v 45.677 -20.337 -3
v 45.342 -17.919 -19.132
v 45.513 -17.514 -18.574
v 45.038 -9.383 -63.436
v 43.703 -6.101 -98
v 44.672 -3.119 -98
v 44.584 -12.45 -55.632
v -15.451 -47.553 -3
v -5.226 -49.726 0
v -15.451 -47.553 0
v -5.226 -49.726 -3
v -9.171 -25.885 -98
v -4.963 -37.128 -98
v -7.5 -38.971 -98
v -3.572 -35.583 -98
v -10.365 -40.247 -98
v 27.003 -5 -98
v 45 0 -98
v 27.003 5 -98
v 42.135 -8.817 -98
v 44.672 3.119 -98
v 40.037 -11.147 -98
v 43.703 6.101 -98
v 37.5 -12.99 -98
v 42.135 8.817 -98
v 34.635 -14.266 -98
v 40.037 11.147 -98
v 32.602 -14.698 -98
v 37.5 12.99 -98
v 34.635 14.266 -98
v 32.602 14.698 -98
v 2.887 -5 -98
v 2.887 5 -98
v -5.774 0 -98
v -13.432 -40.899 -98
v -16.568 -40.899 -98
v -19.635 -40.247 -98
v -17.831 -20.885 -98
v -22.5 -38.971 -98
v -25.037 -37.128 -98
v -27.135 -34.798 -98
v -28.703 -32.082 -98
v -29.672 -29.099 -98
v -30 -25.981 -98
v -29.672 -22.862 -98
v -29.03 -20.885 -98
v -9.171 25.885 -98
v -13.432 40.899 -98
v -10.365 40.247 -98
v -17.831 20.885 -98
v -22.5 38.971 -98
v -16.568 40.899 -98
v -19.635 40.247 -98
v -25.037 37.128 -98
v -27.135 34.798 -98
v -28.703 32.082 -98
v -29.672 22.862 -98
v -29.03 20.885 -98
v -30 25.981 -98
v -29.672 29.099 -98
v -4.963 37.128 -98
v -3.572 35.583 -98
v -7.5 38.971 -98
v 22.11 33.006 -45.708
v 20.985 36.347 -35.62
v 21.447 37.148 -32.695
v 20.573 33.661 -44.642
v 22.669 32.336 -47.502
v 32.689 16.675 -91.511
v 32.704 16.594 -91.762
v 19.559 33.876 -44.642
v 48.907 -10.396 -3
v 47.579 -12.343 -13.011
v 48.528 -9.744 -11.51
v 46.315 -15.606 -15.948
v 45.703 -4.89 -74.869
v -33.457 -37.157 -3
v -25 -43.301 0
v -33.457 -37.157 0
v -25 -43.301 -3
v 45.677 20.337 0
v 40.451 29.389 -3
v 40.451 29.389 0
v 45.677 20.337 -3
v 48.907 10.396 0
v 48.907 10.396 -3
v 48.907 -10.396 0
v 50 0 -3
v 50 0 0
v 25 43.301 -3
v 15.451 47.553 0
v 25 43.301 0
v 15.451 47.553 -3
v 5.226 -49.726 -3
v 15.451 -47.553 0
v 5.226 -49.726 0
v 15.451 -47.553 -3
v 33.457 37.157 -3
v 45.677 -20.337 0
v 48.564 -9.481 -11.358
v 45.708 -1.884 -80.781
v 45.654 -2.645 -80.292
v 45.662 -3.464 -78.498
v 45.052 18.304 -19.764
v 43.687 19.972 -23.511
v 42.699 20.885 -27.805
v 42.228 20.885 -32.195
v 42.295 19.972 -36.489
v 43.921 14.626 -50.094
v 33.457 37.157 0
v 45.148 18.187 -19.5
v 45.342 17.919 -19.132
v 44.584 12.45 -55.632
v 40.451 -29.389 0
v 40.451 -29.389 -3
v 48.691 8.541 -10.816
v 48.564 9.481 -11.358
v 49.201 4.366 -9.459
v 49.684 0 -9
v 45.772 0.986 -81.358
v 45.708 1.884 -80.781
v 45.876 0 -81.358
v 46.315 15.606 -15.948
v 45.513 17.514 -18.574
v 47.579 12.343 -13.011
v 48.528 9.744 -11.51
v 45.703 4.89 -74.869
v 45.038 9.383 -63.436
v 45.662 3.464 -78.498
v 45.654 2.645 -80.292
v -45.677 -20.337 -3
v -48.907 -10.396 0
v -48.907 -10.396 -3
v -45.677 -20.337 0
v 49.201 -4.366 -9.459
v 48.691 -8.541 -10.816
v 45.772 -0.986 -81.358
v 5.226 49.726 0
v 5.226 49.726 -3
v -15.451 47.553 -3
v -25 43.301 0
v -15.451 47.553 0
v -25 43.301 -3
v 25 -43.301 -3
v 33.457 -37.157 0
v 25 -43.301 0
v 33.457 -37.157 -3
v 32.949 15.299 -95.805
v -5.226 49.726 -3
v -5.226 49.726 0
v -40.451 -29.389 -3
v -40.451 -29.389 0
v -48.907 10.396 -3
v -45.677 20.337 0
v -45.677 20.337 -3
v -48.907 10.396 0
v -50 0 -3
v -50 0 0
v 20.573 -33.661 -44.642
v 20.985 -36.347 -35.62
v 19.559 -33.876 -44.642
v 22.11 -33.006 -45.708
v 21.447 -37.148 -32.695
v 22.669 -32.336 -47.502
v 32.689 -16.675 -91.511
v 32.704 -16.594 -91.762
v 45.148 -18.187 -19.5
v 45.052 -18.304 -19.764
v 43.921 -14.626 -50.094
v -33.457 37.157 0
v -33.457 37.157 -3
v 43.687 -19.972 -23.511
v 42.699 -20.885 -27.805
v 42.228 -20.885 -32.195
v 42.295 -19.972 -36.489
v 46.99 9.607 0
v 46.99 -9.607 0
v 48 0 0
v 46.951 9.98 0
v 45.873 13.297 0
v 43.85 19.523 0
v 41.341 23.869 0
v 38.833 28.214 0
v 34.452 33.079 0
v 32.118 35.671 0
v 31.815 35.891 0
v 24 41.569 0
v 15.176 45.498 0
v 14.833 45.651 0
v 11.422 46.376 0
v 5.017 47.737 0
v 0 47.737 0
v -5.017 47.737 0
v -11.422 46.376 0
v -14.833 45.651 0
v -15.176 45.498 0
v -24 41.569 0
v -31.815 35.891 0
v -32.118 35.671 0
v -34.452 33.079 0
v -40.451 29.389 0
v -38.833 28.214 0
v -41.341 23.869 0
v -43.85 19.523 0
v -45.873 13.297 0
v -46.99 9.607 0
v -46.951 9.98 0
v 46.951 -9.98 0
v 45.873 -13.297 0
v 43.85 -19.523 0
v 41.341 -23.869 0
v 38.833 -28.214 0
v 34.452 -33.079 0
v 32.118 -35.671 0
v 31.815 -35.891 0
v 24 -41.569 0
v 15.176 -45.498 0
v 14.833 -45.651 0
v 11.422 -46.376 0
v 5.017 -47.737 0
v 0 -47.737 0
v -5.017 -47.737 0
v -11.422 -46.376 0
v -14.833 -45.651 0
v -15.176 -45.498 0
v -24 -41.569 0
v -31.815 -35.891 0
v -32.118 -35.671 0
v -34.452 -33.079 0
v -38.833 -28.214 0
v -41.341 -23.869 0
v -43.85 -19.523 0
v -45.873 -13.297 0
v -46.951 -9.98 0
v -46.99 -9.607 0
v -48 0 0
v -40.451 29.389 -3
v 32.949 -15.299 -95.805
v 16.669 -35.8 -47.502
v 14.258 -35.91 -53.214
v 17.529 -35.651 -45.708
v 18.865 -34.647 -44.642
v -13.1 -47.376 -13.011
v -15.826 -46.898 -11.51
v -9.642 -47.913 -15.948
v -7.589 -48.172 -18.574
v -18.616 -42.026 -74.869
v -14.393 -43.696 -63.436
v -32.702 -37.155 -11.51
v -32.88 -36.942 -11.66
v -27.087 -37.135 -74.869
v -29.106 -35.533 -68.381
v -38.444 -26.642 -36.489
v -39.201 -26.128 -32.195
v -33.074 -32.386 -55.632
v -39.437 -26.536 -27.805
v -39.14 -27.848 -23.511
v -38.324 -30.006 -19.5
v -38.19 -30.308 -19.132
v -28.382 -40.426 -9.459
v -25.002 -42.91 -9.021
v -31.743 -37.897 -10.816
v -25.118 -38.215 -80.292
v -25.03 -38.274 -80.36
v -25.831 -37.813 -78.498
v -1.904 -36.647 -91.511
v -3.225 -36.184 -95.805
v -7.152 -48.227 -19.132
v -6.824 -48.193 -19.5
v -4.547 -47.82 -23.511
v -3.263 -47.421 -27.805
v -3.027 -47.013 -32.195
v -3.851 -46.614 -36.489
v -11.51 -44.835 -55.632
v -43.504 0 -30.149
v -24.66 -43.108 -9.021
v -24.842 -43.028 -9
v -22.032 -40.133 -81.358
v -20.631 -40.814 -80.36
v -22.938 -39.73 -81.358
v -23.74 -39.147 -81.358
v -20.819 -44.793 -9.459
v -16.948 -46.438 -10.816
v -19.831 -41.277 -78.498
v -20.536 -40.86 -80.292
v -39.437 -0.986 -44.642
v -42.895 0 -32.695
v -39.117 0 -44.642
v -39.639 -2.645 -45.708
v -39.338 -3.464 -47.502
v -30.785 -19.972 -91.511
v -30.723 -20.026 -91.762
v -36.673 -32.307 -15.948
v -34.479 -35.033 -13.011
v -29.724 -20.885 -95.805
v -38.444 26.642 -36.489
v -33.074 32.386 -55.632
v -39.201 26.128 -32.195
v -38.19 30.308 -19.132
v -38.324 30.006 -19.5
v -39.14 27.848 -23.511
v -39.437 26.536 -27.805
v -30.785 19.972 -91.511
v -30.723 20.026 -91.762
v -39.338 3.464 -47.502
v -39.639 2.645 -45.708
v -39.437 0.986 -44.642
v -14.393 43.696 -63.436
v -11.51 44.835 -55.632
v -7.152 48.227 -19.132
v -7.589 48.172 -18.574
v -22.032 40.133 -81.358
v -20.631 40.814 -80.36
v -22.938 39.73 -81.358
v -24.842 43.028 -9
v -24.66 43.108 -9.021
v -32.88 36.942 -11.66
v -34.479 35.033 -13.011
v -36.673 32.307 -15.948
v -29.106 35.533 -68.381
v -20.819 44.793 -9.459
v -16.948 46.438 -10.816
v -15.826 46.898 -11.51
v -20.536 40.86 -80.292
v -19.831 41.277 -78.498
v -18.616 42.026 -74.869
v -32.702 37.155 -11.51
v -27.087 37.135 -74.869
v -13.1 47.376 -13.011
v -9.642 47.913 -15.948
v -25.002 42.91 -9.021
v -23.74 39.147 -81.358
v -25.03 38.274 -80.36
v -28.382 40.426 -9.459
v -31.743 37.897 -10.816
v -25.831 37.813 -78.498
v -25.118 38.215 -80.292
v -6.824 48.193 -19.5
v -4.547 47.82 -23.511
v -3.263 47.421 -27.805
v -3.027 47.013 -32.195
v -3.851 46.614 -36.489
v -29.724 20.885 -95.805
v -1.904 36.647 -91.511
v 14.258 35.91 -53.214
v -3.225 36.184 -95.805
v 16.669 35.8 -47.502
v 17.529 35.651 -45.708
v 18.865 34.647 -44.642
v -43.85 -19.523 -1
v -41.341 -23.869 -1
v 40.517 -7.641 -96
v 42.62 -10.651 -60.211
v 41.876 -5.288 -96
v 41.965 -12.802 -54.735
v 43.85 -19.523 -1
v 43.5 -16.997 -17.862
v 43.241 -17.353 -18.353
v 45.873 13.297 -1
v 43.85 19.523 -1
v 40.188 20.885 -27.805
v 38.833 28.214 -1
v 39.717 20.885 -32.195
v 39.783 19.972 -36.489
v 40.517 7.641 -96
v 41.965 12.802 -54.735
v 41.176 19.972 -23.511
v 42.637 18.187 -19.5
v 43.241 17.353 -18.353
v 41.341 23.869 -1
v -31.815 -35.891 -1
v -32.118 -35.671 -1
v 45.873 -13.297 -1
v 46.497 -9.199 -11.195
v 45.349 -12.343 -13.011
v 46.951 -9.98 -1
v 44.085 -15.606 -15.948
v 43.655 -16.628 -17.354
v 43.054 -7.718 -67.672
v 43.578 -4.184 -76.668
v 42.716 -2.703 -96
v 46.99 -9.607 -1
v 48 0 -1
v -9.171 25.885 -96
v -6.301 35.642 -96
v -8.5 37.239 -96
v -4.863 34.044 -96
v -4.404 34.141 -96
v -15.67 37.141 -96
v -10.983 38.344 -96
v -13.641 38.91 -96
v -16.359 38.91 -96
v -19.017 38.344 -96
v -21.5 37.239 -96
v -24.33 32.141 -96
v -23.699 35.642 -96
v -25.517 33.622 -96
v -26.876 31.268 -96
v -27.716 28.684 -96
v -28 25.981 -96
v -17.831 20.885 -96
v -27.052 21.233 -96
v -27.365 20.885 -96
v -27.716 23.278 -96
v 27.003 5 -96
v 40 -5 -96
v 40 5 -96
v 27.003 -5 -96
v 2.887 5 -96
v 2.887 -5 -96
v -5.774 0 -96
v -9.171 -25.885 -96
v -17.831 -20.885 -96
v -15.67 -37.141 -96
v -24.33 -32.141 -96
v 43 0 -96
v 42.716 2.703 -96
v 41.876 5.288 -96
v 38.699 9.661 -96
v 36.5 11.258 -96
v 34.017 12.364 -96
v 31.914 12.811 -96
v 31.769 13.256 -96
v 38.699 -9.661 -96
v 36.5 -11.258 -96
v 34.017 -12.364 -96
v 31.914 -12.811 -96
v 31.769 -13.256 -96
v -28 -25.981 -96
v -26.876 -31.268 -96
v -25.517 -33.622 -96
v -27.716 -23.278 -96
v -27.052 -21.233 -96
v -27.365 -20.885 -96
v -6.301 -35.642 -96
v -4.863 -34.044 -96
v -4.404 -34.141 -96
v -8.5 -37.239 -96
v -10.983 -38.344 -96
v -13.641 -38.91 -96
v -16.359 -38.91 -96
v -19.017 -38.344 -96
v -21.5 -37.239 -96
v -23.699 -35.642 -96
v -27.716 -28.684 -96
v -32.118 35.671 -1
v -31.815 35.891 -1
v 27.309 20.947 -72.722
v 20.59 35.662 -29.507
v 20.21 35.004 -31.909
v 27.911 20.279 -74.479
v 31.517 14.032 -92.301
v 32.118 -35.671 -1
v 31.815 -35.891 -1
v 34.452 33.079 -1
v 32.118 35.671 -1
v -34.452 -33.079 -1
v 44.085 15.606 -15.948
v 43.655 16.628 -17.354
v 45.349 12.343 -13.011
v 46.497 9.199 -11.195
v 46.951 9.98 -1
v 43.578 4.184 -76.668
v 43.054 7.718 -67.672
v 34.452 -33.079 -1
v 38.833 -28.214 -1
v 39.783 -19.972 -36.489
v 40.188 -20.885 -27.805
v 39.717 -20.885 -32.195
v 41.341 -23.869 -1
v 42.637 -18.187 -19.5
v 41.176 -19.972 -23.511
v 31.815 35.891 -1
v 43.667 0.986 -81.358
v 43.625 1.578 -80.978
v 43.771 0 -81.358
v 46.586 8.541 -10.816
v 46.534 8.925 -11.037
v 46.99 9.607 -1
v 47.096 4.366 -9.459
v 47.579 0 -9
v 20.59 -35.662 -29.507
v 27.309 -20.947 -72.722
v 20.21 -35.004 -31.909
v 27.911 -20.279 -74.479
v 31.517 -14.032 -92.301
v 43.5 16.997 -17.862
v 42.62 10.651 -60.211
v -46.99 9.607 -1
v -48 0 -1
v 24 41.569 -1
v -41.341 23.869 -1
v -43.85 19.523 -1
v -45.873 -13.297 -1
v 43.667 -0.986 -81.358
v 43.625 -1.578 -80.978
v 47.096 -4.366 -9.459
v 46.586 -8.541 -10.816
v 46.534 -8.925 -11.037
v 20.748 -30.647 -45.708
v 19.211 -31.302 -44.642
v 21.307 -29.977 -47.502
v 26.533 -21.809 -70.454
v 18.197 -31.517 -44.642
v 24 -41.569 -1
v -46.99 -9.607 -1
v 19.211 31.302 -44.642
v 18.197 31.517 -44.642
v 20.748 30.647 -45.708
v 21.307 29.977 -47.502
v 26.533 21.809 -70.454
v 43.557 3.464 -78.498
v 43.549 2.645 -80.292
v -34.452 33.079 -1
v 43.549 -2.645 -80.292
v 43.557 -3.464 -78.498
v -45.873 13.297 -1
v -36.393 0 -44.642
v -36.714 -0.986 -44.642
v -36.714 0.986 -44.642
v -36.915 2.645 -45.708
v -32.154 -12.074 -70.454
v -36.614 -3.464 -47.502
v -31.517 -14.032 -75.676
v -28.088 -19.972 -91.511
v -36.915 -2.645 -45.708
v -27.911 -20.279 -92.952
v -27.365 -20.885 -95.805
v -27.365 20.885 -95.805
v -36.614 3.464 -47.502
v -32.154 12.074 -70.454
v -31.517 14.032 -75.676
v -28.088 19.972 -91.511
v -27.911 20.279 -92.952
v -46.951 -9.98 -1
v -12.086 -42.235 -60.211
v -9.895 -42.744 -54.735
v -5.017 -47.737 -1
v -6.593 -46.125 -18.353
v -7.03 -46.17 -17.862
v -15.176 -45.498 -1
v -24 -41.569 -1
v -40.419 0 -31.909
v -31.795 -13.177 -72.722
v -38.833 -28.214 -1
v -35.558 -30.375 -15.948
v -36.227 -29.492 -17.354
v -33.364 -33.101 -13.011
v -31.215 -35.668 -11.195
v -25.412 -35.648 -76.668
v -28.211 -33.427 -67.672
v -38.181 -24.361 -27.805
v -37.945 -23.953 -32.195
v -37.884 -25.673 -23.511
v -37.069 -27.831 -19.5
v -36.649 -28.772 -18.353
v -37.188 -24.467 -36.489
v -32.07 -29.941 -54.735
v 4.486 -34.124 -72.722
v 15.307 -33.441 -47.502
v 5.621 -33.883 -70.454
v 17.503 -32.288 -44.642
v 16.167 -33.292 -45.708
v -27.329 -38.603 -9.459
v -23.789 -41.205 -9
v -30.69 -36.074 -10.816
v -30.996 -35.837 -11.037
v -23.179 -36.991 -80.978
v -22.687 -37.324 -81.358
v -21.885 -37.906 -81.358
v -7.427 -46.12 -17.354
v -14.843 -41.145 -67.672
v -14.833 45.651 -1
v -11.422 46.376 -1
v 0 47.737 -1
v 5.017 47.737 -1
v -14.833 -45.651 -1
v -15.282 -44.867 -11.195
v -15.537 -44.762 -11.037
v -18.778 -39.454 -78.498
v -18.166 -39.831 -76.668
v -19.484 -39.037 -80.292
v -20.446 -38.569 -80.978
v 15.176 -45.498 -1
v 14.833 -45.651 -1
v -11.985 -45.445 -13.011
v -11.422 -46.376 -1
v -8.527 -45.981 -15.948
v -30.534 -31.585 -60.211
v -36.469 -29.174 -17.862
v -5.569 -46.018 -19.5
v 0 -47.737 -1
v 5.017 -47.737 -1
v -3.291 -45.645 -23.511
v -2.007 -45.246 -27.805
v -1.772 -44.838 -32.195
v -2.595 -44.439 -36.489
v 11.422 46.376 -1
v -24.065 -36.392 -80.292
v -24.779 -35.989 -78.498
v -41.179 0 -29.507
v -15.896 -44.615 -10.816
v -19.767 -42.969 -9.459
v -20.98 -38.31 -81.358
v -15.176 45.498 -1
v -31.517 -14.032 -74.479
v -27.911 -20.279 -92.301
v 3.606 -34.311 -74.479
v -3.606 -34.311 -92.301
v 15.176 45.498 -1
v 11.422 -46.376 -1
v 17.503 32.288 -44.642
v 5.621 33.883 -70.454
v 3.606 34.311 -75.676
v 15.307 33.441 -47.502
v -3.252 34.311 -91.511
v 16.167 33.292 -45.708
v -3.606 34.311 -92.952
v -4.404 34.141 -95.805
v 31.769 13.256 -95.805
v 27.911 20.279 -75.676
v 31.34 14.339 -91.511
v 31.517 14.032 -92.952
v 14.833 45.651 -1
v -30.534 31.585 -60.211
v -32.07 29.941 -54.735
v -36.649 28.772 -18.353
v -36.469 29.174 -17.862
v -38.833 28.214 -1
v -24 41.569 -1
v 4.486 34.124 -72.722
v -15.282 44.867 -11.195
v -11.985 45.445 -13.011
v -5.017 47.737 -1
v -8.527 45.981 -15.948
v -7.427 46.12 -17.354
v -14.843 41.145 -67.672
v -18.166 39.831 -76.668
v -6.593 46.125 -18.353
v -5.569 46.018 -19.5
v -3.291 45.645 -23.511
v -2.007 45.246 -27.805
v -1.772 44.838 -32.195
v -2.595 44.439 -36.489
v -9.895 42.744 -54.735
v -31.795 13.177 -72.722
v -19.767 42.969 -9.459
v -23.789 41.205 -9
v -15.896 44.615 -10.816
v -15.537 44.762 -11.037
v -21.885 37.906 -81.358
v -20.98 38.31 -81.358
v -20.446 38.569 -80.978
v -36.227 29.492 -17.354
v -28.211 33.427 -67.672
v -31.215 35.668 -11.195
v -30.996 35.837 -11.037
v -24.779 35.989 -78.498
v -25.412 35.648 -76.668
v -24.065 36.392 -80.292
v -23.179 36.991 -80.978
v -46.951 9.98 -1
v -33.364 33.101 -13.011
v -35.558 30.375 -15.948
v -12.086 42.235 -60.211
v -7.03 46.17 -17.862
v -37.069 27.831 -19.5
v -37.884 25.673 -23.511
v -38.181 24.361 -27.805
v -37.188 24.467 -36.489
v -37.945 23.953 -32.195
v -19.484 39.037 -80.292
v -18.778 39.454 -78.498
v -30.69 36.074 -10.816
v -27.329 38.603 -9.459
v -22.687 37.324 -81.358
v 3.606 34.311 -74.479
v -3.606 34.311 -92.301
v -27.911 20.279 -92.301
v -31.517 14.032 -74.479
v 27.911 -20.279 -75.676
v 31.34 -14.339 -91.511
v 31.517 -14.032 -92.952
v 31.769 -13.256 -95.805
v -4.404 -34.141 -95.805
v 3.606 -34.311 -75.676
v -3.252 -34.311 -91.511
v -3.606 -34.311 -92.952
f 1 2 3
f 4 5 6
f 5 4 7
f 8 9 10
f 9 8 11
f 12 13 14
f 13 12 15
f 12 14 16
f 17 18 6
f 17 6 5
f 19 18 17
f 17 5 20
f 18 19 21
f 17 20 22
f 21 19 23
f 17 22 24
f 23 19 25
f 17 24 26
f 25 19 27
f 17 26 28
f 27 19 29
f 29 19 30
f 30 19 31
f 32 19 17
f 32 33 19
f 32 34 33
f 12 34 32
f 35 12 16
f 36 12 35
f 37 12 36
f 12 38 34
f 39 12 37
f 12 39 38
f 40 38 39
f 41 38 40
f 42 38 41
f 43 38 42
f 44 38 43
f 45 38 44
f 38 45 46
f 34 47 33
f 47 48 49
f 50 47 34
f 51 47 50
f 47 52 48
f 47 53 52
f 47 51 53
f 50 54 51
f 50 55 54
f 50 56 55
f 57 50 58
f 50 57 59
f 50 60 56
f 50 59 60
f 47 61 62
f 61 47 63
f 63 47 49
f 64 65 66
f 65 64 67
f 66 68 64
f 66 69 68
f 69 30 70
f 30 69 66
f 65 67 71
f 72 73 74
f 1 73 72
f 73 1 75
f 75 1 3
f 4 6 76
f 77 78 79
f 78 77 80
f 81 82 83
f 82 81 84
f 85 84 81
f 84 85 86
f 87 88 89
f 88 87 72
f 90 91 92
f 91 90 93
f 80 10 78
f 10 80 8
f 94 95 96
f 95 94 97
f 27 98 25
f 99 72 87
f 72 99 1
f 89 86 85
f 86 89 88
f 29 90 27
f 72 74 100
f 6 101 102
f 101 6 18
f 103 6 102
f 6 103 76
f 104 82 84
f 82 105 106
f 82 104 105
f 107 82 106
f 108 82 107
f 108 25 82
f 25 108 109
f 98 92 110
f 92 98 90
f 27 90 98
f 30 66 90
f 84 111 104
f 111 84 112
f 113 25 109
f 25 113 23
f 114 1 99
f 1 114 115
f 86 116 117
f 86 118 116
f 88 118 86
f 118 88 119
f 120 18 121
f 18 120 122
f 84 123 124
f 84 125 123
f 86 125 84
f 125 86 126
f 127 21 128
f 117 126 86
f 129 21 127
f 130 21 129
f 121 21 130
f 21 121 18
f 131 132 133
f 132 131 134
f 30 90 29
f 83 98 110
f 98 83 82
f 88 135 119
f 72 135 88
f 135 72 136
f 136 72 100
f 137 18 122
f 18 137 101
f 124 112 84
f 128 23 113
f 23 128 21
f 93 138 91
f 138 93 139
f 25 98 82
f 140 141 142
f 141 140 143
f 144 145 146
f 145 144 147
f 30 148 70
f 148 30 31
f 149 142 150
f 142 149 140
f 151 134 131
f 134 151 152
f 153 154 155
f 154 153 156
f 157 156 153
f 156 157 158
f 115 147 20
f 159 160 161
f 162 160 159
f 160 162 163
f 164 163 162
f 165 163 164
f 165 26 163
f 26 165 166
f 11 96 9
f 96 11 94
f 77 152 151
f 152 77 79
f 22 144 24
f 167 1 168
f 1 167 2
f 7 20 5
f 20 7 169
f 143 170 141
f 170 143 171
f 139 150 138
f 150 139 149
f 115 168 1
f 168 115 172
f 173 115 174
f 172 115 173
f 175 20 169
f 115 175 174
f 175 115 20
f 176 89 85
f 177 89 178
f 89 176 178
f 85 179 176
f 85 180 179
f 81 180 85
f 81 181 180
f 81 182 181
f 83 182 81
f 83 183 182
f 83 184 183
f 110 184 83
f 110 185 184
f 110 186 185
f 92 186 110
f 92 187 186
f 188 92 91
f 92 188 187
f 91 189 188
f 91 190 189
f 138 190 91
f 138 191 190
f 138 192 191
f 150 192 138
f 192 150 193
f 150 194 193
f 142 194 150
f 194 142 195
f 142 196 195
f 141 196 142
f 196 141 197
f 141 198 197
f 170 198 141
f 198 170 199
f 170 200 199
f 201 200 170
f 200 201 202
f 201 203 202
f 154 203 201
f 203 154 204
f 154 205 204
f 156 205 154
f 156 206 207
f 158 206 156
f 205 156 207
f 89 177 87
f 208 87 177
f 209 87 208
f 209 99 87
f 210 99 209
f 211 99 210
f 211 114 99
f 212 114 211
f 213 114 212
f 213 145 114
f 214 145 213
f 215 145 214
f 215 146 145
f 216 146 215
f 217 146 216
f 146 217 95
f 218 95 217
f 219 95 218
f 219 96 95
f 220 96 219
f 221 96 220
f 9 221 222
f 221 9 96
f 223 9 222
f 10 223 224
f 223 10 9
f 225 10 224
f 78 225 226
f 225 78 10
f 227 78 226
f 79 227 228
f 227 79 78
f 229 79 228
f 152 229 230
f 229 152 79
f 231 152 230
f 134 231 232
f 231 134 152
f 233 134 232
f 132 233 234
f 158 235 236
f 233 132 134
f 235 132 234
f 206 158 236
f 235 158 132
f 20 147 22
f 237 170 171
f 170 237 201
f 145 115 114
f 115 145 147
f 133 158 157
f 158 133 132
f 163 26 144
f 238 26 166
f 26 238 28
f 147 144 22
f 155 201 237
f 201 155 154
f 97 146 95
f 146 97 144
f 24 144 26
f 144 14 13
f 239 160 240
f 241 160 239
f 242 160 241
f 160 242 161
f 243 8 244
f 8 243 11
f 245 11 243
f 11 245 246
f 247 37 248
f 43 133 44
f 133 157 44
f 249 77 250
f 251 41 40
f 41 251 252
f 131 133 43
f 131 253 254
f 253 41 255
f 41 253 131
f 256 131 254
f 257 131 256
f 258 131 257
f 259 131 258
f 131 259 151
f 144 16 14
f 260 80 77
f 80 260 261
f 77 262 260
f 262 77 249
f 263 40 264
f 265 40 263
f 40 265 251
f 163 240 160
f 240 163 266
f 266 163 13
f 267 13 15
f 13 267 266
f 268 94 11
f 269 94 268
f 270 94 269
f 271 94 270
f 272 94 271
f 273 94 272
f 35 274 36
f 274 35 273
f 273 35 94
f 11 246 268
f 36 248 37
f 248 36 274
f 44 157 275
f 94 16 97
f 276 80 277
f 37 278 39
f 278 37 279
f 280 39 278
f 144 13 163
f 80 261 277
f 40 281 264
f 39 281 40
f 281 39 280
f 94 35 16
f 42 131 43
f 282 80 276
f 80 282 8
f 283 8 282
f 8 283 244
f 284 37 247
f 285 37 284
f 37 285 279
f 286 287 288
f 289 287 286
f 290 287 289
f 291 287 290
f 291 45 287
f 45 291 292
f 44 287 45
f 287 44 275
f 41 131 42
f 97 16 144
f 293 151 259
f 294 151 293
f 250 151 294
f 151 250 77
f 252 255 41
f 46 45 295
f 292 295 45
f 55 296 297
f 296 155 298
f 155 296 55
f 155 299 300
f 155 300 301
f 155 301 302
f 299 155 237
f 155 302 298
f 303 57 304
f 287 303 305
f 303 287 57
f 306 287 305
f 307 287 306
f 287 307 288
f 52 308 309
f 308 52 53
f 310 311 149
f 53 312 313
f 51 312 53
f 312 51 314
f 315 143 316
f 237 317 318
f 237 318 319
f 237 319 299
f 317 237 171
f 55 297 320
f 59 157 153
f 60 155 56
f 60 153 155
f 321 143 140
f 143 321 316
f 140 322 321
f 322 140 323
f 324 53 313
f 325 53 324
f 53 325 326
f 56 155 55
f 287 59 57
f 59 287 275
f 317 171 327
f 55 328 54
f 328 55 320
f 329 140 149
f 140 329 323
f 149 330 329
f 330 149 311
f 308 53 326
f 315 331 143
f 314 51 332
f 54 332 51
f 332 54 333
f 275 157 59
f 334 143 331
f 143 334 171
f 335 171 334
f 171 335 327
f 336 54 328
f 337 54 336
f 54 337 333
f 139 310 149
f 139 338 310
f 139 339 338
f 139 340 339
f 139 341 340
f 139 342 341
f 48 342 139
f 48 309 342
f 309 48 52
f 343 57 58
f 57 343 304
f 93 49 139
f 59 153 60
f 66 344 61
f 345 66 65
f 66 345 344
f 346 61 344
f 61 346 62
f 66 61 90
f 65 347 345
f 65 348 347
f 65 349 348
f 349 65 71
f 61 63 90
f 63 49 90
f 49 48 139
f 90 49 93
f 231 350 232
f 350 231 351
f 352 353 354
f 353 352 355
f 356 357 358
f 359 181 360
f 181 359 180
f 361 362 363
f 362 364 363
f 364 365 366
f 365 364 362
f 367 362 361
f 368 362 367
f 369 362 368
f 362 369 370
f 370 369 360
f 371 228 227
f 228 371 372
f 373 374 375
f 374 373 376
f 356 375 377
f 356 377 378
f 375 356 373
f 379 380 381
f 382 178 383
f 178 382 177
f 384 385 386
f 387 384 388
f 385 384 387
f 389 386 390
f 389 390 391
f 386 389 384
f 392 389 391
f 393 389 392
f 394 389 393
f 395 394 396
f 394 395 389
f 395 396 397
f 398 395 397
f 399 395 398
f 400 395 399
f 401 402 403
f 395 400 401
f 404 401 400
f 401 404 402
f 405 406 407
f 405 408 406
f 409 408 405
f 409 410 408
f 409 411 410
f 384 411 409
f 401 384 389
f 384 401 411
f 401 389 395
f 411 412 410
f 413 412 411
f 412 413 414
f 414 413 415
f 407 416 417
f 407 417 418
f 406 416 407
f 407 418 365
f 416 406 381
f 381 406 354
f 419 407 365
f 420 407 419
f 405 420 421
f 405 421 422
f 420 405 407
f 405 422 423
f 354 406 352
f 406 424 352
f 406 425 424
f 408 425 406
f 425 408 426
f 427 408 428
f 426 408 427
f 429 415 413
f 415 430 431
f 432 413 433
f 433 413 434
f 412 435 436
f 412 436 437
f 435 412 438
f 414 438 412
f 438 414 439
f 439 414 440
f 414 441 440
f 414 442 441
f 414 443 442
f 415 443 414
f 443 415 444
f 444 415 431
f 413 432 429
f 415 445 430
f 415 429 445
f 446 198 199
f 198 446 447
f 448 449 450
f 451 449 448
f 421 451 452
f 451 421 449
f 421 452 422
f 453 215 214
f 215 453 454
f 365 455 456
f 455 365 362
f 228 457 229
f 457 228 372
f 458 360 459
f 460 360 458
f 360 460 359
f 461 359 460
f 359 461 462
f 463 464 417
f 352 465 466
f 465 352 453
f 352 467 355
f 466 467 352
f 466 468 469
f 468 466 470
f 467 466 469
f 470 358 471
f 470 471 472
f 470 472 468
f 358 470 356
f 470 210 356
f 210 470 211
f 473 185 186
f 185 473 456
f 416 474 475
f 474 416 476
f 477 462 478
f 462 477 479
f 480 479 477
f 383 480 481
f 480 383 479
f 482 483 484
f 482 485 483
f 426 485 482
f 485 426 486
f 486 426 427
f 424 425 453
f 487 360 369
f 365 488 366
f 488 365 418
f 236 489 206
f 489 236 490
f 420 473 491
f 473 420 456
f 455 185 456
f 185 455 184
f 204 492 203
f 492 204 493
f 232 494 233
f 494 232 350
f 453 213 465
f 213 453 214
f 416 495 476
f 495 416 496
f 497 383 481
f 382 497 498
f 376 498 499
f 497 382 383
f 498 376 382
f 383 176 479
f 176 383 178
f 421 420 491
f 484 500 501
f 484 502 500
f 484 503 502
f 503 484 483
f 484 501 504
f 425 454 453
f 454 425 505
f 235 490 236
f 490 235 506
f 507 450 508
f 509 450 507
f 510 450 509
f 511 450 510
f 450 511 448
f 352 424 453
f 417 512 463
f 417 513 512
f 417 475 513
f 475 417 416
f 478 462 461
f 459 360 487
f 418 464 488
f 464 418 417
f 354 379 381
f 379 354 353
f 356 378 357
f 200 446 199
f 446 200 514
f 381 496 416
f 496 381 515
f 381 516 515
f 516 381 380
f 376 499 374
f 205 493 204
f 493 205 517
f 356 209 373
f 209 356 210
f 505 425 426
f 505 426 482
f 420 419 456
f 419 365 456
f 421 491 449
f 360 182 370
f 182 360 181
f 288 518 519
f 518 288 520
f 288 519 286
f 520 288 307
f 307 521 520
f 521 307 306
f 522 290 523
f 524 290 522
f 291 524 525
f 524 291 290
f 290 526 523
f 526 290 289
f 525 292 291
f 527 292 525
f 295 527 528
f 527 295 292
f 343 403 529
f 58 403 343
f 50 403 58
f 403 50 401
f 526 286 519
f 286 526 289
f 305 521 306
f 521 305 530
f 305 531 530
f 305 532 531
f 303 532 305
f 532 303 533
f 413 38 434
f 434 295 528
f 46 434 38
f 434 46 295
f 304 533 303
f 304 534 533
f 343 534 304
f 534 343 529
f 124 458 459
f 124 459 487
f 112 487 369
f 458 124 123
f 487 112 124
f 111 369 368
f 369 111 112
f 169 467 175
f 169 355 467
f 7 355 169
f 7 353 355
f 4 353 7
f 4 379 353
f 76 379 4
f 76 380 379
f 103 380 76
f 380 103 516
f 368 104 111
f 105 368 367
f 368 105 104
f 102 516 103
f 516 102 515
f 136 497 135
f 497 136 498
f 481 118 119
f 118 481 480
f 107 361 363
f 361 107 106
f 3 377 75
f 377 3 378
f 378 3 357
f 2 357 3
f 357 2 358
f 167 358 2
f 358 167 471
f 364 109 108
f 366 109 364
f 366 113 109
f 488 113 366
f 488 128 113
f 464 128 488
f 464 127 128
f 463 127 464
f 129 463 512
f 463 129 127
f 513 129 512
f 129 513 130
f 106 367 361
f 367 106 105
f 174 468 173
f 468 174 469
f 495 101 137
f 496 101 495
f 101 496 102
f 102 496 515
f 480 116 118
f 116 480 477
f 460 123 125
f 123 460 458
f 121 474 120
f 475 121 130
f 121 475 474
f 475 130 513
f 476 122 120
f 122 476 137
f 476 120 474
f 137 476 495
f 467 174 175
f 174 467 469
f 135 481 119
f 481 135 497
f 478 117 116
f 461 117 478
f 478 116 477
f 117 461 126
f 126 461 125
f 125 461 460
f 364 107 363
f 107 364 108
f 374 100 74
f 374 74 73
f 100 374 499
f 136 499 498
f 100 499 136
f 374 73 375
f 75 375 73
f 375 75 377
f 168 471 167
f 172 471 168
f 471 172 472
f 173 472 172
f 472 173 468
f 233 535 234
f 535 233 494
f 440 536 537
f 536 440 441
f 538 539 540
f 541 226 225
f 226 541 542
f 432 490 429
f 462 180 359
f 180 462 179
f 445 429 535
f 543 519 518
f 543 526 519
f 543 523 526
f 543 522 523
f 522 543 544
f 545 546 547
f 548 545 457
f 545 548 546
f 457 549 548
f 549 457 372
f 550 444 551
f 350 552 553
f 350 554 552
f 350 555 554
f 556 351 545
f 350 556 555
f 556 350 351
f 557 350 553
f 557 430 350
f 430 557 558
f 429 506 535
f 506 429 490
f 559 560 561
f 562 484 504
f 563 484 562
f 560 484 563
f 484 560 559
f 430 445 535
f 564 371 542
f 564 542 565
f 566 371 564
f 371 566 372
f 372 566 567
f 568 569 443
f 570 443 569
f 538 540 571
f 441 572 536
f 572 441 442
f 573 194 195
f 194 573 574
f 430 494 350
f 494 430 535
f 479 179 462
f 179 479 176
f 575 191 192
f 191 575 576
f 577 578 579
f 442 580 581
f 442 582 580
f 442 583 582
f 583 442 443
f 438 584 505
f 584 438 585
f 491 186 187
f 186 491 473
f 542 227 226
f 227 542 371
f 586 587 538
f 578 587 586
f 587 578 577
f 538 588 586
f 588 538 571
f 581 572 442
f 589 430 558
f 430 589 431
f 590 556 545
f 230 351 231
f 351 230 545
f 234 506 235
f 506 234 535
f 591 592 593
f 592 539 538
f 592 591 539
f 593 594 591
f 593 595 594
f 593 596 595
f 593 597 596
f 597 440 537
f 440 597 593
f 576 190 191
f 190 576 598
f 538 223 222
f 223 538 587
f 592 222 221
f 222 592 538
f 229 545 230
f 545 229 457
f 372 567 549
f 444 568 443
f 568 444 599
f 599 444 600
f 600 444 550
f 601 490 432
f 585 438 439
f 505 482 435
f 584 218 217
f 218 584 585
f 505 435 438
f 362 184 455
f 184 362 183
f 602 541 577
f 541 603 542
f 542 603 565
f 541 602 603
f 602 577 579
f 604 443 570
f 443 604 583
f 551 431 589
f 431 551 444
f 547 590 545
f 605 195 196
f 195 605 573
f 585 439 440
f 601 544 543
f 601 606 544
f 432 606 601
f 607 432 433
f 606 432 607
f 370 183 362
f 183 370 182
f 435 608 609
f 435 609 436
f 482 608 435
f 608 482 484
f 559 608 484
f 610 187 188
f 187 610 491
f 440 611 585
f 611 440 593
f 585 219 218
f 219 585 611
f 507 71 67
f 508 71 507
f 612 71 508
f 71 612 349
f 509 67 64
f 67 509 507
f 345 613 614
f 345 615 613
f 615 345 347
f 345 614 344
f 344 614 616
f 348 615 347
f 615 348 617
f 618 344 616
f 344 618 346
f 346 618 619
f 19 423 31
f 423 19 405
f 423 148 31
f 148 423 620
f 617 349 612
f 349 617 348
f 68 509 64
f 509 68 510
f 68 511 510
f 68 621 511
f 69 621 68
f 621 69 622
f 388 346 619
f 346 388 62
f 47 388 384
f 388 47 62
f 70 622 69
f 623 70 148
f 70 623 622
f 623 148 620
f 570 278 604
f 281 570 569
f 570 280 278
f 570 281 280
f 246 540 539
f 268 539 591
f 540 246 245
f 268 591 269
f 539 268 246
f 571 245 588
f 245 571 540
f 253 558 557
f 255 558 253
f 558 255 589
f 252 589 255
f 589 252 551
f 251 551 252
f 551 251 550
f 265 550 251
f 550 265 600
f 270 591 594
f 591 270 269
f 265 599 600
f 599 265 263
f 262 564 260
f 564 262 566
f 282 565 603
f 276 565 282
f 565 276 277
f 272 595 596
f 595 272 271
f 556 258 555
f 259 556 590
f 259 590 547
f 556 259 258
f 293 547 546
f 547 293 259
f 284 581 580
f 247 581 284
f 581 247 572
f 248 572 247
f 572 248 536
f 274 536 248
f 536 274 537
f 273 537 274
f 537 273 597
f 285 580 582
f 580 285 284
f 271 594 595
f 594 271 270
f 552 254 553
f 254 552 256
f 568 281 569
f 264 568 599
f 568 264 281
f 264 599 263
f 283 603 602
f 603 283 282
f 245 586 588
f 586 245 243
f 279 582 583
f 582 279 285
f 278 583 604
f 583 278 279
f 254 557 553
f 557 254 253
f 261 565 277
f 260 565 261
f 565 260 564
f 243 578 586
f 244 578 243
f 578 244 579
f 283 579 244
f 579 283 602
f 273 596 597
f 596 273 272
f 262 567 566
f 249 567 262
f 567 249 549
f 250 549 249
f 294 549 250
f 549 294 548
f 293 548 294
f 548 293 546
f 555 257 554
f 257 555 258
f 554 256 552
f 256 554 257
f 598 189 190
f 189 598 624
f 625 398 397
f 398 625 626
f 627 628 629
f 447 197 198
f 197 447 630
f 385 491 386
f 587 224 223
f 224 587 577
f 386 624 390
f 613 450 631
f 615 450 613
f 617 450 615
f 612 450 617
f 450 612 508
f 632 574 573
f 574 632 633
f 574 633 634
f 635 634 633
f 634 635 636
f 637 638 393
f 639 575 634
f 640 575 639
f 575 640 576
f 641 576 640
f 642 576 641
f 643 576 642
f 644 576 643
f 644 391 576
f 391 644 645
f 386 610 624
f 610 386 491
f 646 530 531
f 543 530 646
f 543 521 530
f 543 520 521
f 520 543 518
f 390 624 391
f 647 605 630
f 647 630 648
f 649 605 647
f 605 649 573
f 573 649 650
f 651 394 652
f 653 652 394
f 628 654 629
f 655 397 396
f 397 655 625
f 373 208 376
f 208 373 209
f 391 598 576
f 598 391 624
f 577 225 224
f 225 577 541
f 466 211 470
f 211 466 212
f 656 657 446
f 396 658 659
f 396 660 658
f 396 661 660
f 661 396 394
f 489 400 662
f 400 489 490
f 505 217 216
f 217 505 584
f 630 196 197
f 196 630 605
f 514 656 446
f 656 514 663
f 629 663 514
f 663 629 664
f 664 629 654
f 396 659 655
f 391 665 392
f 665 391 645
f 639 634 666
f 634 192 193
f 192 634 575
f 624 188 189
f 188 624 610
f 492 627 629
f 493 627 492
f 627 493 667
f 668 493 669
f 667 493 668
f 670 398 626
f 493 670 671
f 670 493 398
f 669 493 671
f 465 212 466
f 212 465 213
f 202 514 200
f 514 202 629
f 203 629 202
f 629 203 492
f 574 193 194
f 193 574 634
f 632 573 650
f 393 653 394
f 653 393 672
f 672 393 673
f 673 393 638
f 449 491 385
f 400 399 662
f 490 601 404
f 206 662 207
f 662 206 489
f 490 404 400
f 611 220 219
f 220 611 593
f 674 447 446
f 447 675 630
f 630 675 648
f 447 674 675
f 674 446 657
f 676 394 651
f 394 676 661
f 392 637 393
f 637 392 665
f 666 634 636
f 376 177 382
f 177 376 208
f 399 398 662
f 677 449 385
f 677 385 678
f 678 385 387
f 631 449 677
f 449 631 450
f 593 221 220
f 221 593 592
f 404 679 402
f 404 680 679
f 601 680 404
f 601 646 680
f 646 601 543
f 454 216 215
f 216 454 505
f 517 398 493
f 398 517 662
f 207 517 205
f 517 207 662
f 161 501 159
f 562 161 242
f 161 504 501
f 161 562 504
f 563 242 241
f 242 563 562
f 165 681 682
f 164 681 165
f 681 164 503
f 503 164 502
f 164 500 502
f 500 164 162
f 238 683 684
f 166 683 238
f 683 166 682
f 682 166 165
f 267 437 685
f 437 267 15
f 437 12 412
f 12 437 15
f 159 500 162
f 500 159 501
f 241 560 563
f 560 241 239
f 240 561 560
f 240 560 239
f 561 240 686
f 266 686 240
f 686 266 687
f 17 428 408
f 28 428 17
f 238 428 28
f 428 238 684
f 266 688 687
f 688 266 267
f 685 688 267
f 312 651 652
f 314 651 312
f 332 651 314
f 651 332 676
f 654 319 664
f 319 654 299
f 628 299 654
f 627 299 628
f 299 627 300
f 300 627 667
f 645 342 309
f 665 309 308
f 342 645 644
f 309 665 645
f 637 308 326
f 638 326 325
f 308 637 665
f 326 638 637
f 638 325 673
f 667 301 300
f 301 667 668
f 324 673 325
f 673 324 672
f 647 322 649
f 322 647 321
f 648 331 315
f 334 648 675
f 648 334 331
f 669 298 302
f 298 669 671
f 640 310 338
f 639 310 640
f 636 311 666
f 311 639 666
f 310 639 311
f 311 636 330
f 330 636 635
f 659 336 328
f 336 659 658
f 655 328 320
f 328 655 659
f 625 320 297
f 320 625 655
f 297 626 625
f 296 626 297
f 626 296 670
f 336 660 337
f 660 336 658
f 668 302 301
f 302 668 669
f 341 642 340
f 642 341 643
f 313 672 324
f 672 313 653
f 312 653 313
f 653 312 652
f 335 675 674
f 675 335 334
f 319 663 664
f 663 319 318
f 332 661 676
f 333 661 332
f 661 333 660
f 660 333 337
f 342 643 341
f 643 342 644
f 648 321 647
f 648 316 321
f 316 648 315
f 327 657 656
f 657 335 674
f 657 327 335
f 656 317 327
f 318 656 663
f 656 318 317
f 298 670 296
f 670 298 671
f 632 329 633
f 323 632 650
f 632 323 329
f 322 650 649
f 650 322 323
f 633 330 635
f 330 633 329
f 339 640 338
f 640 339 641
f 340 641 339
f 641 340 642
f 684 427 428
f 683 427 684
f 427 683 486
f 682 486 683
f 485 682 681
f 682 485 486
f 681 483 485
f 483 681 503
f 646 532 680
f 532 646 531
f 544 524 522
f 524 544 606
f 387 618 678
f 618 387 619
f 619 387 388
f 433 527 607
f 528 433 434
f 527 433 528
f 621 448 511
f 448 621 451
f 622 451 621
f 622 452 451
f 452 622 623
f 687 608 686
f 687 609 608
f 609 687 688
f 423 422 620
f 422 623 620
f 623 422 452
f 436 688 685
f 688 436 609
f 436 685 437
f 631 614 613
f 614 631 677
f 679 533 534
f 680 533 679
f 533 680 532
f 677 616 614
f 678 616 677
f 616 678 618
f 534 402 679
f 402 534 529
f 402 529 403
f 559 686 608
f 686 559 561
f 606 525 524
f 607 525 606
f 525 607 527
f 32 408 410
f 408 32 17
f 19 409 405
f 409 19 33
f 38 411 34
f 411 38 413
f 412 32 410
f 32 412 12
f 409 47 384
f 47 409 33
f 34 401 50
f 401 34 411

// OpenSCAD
module cone(offset) {
    hull() {
        cylinder(h=3, d=100-offset);
        translate([30,0,0])
            cylinder(h=98, d=30-offset);
    }
}

module rotateThreeTimes() {
    children();
    rotate([0,0,120])
    children();
    rotate([0,0,240])
    children();
}

module one() {
    difference() {
        rotateThreeTimes()
            cone(0);
        translate([0,0,-2])
            cylinder(h=98, d=69);
        rotateThreeTimes() {
            translate([0,0,-2])
                cone(4);

            hull() {
                translate([0,0,48])
                    rotate([0,-90,0])
                    cylinder(d=7, h=50);
                translate([0,0,98])
                    rotate([0,-90,0])
                    cylinder(d=42, h=50);
            }
            translate([0,0,30])
                hull() {
                    translate([0,0,48])
                        rotate([0,90,0])
                        cylinder(d=7, h=50);
                    rotate([0,90,0])
                        cylinder(d=42, h=50);
                }
        }
    };

    rotateThreeTimes()
        translate([0,-5,98-2])
        cube([40,10,2]);
}

rotate([180,0,0])
    one();
